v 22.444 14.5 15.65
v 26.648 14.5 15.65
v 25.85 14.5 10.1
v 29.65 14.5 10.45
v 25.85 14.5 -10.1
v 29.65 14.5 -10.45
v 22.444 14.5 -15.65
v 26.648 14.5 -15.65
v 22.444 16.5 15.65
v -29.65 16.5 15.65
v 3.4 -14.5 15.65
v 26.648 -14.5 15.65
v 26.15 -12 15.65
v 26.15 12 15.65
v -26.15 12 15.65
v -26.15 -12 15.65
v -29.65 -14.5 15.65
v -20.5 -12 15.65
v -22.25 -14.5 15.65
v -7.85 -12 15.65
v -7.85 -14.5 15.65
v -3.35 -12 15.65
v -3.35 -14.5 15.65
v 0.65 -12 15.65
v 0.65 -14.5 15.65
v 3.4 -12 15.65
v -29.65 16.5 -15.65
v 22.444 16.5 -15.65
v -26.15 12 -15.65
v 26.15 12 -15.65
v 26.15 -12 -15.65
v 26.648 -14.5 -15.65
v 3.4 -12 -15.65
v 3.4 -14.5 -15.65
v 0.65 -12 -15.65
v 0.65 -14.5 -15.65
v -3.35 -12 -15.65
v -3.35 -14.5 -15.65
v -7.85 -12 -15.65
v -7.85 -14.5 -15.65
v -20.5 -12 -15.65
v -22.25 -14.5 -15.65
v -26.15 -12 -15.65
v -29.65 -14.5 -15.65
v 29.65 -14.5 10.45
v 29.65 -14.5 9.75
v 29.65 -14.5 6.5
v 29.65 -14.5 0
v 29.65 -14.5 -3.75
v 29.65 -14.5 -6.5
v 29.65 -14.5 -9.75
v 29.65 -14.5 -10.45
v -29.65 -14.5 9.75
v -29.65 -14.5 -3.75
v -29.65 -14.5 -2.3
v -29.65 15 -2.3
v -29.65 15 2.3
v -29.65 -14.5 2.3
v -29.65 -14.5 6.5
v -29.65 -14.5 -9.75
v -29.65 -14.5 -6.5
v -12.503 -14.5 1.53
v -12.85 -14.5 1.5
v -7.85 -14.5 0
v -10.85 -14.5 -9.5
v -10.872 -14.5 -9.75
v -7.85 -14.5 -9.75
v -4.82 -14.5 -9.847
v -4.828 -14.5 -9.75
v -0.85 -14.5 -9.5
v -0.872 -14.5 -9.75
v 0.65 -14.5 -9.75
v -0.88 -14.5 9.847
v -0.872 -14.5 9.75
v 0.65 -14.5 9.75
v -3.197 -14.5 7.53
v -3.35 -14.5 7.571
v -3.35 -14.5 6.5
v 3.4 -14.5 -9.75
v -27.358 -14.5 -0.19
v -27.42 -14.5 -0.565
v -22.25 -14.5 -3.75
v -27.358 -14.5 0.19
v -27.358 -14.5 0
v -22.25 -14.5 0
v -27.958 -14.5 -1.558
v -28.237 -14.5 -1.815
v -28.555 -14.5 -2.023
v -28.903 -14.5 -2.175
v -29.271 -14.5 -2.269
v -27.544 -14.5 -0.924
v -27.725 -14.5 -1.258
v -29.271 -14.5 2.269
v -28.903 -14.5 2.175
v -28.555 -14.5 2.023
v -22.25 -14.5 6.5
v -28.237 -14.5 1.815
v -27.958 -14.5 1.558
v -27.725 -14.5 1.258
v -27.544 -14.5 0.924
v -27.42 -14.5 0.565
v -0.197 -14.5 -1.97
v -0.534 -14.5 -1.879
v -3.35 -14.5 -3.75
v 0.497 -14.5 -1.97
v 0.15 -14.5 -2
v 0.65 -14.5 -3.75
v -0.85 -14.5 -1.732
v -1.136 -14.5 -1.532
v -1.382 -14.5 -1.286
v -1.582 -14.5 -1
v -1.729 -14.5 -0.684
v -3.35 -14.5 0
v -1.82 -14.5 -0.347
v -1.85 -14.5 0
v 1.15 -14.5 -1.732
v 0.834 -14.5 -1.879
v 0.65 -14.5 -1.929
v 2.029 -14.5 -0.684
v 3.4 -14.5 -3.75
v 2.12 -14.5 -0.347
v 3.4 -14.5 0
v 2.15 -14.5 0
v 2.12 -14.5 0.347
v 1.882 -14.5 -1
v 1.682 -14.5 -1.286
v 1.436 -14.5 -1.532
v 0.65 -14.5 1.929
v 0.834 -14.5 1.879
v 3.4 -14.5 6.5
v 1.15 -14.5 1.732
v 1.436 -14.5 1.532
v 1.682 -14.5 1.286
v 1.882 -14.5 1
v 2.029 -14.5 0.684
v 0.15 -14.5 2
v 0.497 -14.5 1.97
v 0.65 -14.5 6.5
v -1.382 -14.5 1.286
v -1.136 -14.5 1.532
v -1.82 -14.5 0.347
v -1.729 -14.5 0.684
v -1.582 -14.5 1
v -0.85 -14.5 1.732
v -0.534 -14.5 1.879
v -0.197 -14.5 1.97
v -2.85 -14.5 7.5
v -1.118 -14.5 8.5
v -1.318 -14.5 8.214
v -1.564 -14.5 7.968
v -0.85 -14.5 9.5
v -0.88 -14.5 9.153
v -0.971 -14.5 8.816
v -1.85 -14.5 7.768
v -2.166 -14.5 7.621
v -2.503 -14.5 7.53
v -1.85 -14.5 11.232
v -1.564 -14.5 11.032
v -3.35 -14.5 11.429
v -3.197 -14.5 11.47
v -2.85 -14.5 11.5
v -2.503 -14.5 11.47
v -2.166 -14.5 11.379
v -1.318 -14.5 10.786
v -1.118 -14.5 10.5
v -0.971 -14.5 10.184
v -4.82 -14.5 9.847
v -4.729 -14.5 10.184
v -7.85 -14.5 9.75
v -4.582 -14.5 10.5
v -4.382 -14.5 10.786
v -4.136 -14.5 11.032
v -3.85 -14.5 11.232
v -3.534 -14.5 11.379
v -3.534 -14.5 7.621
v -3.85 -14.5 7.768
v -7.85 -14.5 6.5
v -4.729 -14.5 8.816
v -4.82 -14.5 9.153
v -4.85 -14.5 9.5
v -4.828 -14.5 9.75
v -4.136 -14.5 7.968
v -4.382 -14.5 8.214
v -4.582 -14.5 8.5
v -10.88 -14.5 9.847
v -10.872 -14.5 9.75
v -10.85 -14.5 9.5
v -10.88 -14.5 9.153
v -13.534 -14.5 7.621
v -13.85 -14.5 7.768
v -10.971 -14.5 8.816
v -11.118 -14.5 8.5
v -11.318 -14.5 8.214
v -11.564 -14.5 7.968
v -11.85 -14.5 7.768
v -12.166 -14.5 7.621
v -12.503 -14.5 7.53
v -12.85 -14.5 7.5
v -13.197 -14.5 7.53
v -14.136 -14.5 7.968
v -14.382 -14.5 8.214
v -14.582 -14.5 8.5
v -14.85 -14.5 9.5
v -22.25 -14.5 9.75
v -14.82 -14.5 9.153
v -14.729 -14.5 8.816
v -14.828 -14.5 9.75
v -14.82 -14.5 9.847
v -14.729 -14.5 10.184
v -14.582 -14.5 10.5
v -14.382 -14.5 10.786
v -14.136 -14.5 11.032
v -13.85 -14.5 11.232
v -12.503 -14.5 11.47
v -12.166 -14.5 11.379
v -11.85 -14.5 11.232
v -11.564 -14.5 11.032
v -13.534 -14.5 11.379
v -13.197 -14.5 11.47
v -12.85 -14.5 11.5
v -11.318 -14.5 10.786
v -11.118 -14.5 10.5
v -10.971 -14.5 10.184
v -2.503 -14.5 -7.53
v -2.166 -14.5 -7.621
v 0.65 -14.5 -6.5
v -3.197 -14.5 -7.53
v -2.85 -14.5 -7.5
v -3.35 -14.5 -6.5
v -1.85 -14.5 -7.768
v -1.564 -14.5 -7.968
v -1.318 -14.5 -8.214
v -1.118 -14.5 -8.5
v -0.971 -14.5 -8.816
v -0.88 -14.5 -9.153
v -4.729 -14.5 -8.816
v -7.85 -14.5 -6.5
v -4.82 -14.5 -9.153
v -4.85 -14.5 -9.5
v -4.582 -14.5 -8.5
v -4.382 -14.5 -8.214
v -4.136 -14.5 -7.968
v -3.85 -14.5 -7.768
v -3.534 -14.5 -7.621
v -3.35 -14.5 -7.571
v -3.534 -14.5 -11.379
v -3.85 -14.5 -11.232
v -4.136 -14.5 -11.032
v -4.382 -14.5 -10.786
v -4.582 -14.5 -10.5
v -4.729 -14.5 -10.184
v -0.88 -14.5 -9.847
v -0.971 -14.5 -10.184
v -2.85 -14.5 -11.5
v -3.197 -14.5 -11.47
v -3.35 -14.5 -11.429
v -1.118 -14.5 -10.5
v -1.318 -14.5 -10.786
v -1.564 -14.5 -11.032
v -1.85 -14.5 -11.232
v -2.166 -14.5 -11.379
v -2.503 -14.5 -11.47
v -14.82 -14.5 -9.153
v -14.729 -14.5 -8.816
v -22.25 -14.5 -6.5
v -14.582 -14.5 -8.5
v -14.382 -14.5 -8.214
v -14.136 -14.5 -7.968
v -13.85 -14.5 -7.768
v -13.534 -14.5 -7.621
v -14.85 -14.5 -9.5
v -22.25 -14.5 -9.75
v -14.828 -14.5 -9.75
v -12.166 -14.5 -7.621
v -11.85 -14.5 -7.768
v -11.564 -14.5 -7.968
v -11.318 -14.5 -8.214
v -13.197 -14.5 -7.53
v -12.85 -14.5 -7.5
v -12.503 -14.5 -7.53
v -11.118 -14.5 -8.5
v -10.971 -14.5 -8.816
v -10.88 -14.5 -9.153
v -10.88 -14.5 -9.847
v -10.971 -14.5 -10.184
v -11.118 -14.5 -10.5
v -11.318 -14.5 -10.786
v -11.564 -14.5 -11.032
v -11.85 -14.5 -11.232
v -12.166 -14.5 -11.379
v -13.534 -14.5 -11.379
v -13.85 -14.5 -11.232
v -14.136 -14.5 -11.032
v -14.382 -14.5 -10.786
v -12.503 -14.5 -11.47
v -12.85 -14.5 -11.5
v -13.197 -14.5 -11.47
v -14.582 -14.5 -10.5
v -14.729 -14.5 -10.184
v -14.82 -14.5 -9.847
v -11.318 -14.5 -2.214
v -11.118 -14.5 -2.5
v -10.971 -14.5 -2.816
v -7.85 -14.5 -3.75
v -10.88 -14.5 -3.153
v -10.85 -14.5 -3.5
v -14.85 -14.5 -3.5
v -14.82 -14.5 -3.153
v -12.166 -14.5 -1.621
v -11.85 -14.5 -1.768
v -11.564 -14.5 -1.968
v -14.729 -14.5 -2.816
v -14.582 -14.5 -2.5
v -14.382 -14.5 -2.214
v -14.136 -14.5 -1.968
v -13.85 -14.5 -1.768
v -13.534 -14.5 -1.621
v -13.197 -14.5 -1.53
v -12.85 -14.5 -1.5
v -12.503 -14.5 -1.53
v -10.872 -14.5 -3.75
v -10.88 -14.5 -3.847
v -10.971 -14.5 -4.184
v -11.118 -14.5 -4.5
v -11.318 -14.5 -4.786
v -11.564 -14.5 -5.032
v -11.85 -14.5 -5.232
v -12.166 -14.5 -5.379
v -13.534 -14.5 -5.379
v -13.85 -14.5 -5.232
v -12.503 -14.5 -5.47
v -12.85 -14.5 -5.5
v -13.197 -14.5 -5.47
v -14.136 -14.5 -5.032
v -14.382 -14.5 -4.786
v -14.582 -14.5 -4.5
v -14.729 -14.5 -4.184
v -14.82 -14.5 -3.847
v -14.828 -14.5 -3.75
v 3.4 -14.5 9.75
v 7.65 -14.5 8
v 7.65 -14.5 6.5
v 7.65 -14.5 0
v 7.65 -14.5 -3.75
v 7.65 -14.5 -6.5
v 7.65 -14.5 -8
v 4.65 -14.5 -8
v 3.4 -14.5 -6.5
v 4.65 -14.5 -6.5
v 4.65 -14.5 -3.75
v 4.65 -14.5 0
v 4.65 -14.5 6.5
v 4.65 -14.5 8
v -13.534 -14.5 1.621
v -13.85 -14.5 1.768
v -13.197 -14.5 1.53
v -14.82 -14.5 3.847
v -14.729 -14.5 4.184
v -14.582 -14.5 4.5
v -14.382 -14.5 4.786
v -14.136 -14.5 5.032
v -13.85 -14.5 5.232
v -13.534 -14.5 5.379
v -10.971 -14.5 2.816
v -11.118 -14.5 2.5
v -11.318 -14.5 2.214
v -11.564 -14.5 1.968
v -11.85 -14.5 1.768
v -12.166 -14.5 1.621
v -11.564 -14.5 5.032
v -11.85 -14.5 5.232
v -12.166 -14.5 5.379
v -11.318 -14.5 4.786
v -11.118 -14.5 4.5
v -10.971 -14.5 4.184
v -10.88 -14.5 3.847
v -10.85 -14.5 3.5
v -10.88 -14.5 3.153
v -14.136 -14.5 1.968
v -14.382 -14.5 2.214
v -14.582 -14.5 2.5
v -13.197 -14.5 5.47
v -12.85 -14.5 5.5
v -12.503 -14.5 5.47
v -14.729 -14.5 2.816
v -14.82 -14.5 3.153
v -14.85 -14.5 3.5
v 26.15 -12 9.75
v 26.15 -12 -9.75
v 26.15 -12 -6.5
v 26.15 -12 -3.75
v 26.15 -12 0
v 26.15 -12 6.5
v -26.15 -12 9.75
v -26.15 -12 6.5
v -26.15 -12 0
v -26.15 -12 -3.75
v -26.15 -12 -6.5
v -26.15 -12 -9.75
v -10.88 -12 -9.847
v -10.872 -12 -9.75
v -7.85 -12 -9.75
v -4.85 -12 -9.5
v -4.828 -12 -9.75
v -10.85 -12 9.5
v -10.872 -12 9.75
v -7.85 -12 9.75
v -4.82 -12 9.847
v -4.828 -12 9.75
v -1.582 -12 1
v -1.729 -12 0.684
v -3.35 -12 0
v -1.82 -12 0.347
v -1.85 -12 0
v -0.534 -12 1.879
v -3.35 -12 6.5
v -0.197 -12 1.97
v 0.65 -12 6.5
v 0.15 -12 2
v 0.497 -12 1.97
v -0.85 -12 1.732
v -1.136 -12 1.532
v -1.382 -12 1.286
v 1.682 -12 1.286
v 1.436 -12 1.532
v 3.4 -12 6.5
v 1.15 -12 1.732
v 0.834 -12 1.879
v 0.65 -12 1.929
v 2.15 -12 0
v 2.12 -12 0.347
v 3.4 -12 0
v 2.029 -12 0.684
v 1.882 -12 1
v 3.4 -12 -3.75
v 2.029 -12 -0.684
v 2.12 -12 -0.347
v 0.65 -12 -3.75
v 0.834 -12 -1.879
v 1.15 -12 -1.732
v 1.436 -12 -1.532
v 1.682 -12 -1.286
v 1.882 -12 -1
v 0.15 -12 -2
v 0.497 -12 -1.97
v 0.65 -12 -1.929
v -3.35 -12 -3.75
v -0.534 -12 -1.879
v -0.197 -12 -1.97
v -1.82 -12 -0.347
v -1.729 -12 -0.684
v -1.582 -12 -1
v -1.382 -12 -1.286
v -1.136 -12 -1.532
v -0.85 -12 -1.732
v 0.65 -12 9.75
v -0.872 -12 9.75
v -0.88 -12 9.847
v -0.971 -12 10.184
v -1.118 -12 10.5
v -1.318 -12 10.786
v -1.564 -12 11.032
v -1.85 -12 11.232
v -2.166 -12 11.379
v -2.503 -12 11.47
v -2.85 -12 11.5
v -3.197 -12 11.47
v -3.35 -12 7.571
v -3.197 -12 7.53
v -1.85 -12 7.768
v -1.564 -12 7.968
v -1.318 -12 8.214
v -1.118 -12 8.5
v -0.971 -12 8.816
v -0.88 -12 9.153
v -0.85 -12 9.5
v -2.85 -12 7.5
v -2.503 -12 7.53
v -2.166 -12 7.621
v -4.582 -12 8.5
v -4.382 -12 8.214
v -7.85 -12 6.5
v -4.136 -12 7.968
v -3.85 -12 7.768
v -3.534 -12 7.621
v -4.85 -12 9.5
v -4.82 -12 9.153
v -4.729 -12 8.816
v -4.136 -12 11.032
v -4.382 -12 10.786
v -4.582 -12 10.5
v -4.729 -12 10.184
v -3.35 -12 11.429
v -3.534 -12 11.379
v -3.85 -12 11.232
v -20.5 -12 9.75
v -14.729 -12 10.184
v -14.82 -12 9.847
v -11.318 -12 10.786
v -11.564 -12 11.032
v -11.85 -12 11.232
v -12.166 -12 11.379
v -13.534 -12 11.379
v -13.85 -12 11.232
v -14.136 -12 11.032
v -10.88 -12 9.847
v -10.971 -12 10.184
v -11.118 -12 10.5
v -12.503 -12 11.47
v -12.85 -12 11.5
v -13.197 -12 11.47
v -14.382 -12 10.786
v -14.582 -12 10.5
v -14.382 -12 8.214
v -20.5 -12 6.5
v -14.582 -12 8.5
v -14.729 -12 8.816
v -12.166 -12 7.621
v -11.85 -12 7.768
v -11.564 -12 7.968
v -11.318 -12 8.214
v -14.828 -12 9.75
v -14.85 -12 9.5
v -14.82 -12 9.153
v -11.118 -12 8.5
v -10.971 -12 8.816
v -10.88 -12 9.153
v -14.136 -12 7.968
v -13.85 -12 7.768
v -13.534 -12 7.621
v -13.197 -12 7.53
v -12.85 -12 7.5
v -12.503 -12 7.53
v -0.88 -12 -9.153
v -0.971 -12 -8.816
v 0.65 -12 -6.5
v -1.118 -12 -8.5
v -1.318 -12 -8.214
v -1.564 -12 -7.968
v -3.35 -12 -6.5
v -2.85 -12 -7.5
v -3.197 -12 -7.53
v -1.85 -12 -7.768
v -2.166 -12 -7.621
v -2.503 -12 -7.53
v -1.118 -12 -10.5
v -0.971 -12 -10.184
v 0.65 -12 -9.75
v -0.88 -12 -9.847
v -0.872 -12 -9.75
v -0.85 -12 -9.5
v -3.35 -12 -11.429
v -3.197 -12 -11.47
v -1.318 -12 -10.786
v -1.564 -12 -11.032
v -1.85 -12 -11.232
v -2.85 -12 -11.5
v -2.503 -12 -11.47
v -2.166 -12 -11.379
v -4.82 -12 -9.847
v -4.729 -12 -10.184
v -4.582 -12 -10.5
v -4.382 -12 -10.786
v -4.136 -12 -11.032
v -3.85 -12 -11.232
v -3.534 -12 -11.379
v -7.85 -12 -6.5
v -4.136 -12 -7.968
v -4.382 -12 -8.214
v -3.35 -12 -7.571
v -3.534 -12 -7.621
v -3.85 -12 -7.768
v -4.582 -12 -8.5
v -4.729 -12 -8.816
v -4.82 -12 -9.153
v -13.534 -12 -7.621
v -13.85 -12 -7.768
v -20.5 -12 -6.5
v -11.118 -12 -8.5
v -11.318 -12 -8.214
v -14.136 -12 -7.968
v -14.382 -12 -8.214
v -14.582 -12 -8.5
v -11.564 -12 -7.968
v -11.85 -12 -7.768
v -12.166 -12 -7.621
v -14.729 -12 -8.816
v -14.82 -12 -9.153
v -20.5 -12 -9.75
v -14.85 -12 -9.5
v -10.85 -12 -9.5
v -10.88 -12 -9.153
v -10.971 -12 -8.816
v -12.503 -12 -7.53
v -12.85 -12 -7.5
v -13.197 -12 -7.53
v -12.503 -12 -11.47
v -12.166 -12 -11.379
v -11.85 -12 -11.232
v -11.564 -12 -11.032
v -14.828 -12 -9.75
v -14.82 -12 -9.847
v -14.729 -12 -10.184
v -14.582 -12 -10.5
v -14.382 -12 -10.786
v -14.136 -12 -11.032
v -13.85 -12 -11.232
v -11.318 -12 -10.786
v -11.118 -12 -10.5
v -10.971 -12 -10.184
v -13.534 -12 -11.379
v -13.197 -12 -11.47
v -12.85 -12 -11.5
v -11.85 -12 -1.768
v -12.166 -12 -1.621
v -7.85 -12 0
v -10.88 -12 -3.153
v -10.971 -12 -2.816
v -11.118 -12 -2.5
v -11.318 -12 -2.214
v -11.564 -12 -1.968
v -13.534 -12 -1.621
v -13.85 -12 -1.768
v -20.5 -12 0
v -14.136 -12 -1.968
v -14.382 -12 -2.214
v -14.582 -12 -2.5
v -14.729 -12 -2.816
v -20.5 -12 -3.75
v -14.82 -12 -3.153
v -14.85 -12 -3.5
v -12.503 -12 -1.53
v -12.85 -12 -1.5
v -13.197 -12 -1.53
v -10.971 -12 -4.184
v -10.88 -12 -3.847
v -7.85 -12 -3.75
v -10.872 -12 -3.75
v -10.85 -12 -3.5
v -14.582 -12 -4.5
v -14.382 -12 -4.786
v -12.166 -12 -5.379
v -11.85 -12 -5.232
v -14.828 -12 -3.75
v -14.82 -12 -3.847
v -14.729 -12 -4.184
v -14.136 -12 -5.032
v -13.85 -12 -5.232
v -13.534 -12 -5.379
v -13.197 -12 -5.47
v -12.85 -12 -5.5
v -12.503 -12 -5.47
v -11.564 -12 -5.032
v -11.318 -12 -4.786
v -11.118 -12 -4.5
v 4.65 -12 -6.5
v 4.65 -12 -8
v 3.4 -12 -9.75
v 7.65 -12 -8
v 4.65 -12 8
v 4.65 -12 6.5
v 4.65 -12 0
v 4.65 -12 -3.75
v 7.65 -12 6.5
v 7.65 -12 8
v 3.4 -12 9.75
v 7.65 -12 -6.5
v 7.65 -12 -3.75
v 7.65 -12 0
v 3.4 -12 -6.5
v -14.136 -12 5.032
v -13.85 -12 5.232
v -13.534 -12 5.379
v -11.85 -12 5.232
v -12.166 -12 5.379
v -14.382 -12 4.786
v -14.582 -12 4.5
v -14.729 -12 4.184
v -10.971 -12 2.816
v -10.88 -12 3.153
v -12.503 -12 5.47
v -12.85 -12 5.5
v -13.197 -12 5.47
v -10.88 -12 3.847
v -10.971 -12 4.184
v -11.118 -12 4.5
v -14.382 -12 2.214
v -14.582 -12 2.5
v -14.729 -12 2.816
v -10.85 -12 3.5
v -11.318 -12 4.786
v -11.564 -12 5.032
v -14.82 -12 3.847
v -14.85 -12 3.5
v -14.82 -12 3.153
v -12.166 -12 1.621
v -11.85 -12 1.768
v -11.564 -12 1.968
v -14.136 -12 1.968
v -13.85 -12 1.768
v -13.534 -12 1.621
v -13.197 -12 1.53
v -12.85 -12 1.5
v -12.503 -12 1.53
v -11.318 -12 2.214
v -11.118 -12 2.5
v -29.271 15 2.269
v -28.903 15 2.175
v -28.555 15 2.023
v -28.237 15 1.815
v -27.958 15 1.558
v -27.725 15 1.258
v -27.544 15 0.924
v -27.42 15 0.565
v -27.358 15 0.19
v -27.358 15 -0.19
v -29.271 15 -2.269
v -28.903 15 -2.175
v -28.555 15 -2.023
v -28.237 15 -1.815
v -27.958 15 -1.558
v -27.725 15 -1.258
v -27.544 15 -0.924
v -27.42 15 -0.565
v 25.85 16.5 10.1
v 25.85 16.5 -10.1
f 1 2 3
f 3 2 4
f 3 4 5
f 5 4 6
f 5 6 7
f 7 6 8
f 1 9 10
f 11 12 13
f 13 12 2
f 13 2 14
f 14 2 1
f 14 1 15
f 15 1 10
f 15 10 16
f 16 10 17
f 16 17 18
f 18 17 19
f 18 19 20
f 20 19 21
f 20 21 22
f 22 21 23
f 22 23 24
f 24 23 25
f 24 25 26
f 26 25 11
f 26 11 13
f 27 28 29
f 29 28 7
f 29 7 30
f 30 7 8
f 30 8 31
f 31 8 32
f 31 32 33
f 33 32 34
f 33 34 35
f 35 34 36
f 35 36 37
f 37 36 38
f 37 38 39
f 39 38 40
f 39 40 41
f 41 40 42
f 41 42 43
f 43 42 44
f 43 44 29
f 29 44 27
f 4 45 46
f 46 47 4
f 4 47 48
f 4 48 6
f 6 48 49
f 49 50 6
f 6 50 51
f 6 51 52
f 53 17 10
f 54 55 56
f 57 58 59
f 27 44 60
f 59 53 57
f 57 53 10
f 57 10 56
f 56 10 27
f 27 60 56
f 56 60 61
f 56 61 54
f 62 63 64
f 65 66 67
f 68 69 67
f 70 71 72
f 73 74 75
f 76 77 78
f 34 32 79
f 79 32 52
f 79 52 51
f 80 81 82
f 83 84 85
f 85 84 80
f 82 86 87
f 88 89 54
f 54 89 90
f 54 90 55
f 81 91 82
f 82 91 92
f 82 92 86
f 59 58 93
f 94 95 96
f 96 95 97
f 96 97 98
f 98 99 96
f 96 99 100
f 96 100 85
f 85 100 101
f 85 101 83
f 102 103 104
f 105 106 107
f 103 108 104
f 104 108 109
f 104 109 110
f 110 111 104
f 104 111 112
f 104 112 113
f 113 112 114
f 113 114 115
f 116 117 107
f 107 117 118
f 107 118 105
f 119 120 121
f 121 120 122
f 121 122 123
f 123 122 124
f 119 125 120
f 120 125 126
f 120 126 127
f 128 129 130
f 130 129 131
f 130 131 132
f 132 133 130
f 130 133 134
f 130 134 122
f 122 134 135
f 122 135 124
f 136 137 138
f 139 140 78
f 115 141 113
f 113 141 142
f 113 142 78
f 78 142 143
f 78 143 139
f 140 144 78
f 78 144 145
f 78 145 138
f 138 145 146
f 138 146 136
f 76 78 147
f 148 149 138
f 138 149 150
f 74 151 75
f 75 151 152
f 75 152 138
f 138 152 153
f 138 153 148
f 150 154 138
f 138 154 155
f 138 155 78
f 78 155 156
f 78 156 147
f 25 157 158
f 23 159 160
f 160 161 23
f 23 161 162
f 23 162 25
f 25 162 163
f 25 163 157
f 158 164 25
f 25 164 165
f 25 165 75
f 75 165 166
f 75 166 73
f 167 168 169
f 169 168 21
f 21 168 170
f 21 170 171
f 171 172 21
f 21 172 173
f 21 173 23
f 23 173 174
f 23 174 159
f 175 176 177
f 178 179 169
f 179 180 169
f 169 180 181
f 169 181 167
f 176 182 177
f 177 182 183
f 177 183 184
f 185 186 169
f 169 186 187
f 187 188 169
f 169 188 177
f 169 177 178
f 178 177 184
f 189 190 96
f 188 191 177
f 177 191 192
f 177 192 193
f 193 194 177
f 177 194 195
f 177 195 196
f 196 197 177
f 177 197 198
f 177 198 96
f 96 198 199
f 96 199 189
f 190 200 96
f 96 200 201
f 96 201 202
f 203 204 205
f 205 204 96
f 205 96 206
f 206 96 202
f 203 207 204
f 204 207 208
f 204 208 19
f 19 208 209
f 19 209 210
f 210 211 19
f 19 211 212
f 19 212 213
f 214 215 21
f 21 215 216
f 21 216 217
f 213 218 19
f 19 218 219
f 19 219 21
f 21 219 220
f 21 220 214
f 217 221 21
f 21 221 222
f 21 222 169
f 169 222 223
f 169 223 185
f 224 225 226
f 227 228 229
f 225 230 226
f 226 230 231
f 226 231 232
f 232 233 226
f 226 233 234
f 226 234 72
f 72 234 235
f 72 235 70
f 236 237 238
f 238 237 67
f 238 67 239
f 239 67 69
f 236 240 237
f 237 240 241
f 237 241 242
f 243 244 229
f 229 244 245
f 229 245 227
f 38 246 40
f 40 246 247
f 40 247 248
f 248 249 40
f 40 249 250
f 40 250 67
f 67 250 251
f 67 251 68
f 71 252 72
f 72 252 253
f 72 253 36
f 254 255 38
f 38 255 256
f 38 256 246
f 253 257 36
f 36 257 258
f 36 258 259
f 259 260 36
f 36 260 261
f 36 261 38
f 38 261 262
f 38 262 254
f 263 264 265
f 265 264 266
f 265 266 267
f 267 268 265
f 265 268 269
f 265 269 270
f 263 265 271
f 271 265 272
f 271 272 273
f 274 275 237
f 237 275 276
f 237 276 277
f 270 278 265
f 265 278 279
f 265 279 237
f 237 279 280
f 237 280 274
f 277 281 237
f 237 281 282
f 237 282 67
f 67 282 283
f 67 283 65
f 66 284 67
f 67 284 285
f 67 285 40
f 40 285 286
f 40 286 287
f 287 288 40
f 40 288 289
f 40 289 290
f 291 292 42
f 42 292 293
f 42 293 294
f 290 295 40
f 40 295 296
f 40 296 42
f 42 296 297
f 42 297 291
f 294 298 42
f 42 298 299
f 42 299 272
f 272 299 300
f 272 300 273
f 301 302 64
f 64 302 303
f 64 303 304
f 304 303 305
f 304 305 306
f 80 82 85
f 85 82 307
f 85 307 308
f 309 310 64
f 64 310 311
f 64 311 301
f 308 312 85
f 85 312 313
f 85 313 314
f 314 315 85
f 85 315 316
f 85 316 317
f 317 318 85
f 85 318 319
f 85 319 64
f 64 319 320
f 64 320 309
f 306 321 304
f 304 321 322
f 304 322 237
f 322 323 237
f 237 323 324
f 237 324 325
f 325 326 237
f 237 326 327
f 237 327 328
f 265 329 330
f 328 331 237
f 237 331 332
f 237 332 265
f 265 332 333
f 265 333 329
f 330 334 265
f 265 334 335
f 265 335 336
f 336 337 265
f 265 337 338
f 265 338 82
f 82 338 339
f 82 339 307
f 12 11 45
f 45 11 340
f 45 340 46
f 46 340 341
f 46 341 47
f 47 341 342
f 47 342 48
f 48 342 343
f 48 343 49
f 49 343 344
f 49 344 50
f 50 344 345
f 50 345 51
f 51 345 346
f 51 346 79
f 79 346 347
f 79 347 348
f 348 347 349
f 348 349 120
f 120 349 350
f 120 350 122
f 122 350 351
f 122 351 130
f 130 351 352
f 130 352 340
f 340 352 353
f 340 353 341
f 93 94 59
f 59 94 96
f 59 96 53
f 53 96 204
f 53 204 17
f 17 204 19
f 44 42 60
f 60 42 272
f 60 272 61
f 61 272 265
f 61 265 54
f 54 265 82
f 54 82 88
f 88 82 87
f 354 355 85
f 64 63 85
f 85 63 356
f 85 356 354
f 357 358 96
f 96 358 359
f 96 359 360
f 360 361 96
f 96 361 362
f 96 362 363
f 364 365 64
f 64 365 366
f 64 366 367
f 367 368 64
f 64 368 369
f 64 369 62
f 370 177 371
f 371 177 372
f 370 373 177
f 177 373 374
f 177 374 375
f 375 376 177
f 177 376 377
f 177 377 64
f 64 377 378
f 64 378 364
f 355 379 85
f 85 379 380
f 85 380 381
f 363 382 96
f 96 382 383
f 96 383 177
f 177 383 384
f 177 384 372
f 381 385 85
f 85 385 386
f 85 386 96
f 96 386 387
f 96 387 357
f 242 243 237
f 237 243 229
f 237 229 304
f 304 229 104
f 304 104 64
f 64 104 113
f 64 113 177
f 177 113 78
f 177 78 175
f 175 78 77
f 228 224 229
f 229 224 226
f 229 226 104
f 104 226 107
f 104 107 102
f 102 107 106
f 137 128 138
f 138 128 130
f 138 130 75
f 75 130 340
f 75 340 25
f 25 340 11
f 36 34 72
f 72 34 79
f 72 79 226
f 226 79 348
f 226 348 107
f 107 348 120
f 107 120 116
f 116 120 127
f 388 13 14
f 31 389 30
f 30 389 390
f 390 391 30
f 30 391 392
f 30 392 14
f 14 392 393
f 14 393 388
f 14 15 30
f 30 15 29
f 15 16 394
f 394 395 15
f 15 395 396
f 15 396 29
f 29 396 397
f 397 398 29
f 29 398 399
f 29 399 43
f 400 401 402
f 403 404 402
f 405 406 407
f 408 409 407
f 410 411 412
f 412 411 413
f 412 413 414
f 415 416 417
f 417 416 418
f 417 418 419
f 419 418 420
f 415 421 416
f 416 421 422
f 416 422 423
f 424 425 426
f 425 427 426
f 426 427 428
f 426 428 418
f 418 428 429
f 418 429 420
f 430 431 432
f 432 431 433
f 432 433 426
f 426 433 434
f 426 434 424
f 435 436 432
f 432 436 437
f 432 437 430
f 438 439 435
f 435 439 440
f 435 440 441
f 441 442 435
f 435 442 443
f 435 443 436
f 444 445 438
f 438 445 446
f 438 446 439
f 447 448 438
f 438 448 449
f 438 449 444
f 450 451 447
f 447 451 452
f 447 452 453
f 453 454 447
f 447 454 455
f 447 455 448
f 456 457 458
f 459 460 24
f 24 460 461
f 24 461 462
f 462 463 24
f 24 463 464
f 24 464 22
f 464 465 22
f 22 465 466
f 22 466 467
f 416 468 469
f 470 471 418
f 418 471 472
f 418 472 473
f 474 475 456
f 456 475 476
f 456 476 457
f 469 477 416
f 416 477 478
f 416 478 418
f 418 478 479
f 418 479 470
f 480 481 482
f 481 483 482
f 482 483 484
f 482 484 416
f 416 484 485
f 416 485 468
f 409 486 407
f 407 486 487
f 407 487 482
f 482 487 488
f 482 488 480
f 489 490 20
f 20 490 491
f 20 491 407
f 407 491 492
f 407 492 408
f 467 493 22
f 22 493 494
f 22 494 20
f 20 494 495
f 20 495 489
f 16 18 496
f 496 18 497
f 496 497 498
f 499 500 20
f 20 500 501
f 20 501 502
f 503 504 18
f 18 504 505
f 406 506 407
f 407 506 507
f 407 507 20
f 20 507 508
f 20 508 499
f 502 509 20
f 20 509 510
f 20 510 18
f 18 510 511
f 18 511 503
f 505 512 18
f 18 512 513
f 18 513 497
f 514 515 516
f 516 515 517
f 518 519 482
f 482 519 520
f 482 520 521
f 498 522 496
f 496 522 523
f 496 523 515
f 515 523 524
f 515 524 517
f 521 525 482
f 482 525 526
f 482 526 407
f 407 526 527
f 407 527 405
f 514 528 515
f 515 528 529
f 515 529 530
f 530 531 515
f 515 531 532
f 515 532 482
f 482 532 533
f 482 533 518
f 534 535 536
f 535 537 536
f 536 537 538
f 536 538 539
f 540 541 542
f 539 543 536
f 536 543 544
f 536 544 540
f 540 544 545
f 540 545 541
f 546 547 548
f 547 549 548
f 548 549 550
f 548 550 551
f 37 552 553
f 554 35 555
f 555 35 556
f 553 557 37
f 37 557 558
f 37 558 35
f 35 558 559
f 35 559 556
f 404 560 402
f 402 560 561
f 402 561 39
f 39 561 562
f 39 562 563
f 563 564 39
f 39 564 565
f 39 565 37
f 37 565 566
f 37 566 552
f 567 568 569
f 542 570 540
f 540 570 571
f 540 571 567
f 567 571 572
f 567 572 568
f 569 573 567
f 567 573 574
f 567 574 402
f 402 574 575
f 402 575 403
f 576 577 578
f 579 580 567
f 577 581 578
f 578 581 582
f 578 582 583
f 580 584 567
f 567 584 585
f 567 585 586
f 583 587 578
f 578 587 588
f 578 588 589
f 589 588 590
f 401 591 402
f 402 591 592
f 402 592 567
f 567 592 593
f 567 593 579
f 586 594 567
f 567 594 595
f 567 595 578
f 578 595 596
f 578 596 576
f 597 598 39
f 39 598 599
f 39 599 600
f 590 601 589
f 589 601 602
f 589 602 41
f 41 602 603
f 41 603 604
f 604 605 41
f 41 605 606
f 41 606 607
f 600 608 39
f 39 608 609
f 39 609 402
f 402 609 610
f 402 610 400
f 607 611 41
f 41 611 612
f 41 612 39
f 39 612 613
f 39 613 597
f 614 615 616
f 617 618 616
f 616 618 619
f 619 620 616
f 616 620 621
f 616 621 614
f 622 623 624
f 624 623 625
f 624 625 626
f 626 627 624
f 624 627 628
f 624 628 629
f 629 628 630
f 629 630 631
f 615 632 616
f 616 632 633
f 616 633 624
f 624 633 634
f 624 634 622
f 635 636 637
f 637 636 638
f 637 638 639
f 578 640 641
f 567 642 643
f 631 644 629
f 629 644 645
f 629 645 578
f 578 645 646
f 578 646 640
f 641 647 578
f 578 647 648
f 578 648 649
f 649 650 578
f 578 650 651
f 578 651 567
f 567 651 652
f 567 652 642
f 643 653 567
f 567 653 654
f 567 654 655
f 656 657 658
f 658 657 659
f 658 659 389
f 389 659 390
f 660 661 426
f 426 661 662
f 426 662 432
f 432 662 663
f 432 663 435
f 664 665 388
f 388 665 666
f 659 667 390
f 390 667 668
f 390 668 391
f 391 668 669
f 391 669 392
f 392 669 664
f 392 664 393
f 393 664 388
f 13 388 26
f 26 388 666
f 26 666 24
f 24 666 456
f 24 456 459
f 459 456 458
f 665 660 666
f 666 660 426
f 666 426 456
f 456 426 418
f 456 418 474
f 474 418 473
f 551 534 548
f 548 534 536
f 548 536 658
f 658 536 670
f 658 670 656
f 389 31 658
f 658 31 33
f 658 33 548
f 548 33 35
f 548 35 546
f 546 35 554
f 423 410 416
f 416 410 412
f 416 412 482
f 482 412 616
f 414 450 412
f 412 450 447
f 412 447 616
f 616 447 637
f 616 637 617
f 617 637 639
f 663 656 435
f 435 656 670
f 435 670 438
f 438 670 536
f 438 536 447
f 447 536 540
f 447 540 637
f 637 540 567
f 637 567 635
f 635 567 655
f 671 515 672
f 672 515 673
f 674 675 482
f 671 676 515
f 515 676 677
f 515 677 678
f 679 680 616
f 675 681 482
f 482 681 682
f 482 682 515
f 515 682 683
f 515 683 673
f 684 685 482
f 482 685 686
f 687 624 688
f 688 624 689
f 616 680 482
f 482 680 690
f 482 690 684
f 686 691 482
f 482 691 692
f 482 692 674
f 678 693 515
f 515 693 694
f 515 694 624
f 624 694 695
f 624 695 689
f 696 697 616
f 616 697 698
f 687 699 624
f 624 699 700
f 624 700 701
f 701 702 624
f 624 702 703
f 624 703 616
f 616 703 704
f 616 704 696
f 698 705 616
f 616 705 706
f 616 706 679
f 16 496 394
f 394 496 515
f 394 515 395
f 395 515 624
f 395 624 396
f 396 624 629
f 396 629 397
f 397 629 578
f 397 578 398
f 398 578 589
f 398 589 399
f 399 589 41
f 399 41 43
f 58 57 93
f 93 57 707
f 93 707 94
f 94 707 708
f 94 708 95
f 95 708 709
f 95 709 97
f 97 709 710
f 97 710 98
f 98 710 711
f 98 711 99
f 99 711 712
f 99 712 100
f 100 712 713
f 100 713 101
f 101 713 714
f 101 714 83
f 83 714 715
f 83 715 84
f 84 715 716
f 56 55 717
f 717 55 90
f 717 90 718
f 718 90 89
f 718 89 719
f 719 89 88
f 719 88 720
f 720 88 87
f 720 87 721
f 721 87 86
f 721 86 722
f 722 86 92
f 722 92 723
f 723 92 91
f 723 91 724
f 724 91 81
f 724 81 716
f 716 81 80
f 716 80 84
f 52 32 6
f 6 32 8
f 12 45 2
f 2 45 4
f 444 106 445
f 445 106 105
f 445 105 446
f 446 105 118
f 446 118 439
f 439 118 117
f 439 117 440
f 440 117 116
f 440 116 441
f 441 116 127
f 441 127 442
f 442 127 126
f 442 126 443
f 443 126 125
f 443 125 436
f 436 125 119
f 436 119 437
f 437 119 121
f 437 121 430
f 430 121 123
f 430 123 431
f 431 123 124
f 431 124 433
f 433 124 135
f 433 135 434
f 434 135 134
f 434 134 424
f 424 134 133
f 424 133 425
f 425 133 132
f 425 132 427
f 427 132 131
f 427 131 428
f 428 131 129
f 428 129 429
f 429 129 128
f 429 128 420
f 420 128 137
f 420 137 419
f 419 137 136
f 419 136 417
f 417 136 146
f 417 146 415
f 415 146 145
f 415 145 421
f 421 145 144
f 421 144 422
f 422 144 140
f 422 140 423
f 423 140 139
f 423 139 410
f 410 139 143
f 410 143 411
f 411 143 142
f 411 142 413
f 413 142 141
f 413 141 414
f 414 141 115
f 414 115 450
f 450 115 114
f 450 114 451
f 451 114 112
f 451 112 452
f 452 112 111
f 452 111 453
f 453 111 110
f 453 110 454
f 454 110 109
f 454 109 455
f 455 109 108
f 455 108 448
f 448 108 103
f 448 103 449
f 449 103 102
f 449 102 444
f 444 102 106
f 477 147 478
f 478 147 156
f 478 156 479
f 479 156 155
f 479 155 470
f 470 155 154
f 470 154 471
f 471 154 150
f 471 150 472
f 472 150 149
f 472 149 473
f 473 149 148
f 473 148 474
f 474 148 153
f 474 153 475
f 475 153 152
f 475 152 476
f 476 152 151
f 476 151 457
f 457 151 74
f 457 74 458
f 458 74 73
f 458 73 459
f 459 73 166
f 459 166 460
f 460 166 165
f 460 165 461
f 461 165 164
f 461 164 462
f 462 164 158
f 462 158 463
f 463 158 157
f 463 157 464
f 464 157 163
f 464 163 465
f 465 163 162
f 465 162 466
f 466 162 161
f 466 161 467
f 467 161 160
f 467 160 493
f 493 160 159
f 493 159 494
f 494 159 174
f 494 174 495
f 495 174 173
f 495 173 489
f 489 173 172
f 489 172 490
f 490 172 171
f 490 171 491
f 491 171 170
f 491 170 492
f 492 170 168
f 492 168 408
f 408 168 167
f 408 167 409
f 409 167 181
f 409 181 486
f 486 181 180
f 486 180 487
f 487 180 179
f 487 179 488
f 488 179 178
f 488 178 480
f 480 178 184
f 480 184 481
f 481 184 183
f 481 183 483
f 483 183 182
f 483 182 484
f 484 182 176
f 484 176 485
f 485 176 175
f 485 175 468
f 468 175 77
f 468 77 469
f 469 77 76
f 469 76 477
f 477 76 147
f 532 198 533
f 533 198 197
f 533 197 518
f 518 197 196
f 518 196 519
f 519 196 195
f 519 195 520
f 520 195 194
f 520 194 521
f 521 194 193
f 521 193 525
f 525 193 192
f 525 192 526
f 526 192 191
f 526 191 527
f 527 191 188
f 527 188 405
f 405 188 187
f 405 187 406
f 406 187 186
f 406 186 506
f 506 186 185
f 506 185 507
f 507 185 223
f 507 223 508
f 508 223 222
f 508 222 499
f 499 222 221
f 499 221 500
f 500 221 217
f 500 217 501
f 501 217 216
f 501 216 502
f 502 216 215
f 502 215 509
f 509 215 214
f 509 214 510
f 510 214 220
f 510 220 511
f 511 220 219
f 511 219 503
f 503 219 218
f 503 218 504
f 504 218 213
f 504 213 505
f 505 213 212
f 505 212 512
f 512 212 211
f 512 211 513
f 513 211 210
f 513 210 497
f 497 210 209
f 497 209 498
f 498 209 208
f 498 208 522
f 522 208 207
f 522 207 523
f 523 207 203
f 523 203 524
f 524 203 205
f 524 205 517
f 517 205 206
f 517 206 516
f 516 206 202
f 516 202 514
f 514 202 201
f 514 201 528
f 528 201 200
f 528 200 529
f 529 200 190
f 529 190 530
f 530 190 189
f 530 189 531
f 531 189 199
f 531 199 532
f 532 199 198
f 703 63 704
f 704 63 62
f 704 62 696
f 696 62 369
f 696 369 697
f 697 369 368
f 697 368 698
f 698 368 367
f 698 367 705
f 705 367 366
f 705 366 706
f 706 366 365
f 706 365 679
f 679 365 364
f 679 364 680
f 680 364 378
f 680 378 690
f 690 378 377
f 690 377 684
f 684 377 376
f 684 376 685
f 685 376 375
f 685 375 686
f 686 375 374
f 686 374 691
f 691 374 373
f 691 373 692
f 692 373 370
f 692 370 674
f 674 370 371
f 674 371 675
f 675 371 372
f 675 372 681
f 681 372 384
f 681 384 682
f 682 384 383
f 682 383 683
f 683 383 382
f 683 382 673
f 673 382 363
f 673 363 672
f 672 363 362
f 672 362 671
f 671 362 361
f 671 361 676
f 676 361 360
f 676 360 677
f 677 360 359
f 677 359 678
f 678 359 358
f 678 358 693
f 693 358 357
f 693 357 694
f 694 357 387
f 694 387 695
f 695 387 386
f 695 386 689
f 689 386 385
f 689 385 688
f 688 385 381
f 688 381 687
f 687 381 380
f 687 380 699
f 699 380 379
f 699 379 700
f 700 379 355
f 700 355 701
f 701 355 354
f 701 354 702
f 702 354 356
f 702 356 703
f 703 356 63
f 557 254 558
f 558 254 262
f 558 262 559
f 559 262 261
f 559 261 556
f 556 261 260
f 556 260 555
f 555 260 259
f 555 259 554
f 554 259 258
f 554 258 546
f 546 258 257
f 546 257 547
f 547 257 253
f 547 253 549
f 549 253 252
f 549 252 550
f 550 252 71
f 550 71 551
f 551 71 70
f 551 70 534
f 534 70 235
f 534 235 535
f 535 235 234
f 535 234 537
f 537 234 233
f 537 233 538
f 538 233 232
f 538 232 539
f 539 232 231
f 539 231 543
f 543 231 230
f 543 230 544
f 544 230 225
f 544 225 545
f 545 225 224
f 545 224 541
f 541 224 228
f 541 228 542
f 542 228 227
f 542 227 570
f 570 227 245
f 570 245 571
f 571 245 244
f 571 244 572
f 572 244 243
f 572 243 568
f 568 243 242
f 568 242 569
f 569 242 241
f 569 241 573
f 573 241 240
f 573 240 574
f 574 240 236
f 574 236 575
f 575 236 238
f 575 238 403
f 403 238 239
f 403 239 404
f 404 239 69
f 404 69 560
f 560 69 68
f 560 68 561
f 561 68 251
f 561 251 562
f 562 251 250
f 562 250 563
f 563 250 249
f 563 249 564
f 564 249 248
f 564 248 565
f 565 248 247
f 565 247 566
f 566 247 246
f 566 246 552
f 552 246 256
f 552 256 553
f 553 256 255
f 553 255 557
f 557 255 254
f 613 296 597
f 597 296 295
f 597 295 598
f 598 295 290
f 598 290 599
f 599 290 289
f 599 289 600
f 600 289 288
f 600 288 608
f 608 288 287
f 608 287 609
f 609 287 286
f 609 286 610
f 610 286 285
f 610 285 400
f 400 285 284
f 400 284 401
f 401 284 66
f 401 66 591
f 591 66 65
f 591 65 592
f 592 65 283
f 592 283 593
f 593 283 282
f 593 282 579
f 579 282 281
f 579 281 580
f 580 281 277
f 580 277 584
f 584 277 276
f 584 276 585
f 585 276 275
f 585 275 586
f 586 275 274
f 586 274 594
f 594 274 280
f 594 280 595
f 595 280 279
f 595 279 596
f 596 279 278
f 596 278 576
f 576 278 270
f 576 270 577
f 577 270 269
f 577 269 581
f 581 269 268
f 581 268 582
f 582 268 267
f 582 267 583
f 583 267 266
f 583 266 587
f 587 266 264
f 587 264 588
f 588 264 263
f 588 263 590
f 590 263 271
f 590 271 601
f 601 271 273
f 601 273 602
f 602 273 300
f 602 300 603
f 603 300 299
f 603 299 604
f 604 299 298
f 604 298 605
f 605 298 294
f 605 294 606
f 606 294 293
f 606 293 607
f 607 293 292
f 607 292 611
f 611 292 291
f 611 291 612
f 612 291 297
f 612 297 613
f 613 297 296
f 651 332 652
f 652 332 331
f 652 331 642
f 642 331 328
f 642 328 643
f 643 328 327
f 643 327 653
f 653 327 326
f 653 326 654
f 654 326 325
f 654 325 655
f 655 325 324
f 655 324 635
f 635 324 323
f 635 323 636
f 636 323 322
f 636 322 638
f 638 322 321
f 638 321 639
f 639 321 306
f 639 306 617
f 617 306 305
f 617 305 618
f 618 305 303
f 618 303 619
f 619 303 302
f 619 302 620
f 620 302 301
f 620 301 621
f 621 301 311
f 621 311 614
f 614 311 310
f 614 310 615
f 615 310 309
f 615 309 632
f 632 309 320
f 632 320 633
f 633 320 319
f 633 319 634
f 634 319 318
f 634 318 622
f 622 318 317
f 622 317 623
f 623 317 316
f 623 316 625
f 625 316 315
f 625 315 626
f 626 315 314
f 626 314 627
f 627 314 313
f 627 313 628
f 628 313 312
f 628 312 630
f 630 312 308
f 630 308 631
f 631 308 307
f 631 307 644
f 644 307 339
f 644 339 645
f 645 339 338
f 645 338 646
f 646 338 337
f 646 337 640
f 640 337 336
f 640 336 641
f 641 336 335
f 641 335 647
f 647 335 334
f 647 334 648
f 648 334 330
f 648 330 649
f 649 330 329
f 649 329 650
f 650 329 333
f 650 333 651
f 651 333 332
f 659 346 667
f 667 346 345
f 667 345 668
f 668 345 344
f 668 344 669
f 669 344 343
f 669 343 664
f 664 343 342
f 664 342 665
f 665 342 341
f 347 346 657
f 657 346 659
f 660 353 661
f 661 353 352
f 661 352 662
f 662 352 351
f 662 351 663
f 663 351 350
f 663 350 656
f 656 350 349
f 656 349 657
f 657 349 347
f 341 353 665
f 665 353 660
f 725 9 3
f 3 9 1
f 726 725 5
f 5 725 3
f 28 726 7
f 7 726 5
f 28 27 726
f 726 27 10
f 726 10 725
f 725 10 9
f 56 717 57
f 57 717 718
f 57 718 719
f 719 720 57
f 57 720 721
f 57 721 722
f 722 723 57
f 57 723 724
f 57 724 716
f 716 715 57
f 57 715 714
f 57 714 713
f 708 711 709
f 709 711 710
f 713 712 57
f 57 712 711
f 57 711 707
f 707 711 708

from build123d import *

# Parameters (mm, degrees)
VISTA_FRONTAL_W         = 59.3
VISTA_FRONTAL_H         = 29
VISTA_FRONTAL_W_2       = 52.3
VISTA_FRONTAL_H_2       = 24
CORPO_DO_MODULO_DEPTH   = 15.65
ESBO_O3_R               = 2.3
PADR_O_DE_ENCAIXE_DEPTH = 45.328828092
ESBO_O4_R               = 2
ESBO_O4_W               = 3
ESBO_O4_H               = 16
FUROS_INTERNOS_DEPTH    = 3.6
CAL_O_SUPERIOR_DEPTH    = 2
CORTE_START             = -0.5
FURO_COMPENSADOR_R      = 2.3
CORTE_COMPENSADOR_DEPTH = 0.5


with BuildPart() as part:
    # Vista Frontal → Corpo do Modulo (new, symmetric)
    with BuildSketch(Plane.XY):
        Rectangle(VISTA_FRONTAL_W, VISTA_FRONTAL_H)
        Rectangle(VISTA_FRONTAL_W_2, VISTA_FRONTAL_H_2, mode=Mode.SUBTRACT)
    extrude(amount=CORPO_DO_MODULO_DEPTH, both=True)

    # Esboço3 → Padrão de Encaixe (cut, through all)
    with BuildSketch(Plane(origin=(0, 14.5, 0), x_dir=(1, 0, 0), z_dir=(0, 1, 0))):
        with Locations((-29.65, 0)):
            Circle(ESBO_O3_R)
        Polygon((26.6477786, -15.65), (29.65, -10.45), (29.65, -15.65), align=None)
        Polygon((29.65, 15.65), (26.6477786, 15.65), (29.65, 10.45), align=None)
    extrude(amount=-PADR_O_DE_ENCAIXE_DEPTH, mode=Mode.SUBTRACT)

    # Esboço4 → Furos Internos (cut)
    with BuildSketch(Plane.XZ.offset(14.5)):
        with Locations(Location((0.15, 0, 0), (0, 0, 270))):
            Circle(ESBO_O4_R)
        with Locations(Location((-2.85, 9.5, 0), (0, 0, 270))):
            Circle(ESBO_O4_R)
        with Locations(Location((-12.85, 9.5, 0), (0, 0, 270))):
            Circle(ESBO_O4_R)
        with Locations(Location((-12.85, 3.5, 0), (0, 0, 270))):
            Circle(ESBO_O4_R)
        with Locations(Location((-12.85, -3.5, 0), (0, 0, 90))):
            Circle(ESBO_O4_R)
        with Locations(Location((-12.85, -9.5, 0), (0, 0, 90))):
            Circle(ESBO_O4_R)
        with Locations(Location((-2.85, -9.5, 0), (0, 0, 90))):
            Circle(ESBO_O4_R)
        with Locations((6.15, 0)):
            Rectangle(ESBO_O4_W, ESBO_O4_H)
    extrude(amount=-FUROS_INTERNOS_DEPTH, mode=Mode.SUBTRACT)

    # Extra Tampa → Calço Superior (add)
    with BuildSketch(Plane(origin=(0, 14.5, 0), x_dir=(1, 0, 0), z_dir=(0, 1, 0))):
        Polygon((-29.65, 15.65), (22.443633412, 15.65), (25.85, 10.1), (25.85, -10.1), (22.443633412, -15.65), (-29.65, -15.65), align=None)
    extrude(amount=CAL_O_SUPERIOR_DEPTH)

    # Furo Compensador → Corte compensador (cut)
    with BuildSketch(Plane.XZ.offset(-14.5).offset(CORTE_START)):
        with Locations((-29.65, 0)):
            Circle(FURO_COMPENSADOR_R)
    extrude(amount=CORTE_COMPENSADOR_DEPTH, mode=Mode.SUBTRACT)


solid = part.part
